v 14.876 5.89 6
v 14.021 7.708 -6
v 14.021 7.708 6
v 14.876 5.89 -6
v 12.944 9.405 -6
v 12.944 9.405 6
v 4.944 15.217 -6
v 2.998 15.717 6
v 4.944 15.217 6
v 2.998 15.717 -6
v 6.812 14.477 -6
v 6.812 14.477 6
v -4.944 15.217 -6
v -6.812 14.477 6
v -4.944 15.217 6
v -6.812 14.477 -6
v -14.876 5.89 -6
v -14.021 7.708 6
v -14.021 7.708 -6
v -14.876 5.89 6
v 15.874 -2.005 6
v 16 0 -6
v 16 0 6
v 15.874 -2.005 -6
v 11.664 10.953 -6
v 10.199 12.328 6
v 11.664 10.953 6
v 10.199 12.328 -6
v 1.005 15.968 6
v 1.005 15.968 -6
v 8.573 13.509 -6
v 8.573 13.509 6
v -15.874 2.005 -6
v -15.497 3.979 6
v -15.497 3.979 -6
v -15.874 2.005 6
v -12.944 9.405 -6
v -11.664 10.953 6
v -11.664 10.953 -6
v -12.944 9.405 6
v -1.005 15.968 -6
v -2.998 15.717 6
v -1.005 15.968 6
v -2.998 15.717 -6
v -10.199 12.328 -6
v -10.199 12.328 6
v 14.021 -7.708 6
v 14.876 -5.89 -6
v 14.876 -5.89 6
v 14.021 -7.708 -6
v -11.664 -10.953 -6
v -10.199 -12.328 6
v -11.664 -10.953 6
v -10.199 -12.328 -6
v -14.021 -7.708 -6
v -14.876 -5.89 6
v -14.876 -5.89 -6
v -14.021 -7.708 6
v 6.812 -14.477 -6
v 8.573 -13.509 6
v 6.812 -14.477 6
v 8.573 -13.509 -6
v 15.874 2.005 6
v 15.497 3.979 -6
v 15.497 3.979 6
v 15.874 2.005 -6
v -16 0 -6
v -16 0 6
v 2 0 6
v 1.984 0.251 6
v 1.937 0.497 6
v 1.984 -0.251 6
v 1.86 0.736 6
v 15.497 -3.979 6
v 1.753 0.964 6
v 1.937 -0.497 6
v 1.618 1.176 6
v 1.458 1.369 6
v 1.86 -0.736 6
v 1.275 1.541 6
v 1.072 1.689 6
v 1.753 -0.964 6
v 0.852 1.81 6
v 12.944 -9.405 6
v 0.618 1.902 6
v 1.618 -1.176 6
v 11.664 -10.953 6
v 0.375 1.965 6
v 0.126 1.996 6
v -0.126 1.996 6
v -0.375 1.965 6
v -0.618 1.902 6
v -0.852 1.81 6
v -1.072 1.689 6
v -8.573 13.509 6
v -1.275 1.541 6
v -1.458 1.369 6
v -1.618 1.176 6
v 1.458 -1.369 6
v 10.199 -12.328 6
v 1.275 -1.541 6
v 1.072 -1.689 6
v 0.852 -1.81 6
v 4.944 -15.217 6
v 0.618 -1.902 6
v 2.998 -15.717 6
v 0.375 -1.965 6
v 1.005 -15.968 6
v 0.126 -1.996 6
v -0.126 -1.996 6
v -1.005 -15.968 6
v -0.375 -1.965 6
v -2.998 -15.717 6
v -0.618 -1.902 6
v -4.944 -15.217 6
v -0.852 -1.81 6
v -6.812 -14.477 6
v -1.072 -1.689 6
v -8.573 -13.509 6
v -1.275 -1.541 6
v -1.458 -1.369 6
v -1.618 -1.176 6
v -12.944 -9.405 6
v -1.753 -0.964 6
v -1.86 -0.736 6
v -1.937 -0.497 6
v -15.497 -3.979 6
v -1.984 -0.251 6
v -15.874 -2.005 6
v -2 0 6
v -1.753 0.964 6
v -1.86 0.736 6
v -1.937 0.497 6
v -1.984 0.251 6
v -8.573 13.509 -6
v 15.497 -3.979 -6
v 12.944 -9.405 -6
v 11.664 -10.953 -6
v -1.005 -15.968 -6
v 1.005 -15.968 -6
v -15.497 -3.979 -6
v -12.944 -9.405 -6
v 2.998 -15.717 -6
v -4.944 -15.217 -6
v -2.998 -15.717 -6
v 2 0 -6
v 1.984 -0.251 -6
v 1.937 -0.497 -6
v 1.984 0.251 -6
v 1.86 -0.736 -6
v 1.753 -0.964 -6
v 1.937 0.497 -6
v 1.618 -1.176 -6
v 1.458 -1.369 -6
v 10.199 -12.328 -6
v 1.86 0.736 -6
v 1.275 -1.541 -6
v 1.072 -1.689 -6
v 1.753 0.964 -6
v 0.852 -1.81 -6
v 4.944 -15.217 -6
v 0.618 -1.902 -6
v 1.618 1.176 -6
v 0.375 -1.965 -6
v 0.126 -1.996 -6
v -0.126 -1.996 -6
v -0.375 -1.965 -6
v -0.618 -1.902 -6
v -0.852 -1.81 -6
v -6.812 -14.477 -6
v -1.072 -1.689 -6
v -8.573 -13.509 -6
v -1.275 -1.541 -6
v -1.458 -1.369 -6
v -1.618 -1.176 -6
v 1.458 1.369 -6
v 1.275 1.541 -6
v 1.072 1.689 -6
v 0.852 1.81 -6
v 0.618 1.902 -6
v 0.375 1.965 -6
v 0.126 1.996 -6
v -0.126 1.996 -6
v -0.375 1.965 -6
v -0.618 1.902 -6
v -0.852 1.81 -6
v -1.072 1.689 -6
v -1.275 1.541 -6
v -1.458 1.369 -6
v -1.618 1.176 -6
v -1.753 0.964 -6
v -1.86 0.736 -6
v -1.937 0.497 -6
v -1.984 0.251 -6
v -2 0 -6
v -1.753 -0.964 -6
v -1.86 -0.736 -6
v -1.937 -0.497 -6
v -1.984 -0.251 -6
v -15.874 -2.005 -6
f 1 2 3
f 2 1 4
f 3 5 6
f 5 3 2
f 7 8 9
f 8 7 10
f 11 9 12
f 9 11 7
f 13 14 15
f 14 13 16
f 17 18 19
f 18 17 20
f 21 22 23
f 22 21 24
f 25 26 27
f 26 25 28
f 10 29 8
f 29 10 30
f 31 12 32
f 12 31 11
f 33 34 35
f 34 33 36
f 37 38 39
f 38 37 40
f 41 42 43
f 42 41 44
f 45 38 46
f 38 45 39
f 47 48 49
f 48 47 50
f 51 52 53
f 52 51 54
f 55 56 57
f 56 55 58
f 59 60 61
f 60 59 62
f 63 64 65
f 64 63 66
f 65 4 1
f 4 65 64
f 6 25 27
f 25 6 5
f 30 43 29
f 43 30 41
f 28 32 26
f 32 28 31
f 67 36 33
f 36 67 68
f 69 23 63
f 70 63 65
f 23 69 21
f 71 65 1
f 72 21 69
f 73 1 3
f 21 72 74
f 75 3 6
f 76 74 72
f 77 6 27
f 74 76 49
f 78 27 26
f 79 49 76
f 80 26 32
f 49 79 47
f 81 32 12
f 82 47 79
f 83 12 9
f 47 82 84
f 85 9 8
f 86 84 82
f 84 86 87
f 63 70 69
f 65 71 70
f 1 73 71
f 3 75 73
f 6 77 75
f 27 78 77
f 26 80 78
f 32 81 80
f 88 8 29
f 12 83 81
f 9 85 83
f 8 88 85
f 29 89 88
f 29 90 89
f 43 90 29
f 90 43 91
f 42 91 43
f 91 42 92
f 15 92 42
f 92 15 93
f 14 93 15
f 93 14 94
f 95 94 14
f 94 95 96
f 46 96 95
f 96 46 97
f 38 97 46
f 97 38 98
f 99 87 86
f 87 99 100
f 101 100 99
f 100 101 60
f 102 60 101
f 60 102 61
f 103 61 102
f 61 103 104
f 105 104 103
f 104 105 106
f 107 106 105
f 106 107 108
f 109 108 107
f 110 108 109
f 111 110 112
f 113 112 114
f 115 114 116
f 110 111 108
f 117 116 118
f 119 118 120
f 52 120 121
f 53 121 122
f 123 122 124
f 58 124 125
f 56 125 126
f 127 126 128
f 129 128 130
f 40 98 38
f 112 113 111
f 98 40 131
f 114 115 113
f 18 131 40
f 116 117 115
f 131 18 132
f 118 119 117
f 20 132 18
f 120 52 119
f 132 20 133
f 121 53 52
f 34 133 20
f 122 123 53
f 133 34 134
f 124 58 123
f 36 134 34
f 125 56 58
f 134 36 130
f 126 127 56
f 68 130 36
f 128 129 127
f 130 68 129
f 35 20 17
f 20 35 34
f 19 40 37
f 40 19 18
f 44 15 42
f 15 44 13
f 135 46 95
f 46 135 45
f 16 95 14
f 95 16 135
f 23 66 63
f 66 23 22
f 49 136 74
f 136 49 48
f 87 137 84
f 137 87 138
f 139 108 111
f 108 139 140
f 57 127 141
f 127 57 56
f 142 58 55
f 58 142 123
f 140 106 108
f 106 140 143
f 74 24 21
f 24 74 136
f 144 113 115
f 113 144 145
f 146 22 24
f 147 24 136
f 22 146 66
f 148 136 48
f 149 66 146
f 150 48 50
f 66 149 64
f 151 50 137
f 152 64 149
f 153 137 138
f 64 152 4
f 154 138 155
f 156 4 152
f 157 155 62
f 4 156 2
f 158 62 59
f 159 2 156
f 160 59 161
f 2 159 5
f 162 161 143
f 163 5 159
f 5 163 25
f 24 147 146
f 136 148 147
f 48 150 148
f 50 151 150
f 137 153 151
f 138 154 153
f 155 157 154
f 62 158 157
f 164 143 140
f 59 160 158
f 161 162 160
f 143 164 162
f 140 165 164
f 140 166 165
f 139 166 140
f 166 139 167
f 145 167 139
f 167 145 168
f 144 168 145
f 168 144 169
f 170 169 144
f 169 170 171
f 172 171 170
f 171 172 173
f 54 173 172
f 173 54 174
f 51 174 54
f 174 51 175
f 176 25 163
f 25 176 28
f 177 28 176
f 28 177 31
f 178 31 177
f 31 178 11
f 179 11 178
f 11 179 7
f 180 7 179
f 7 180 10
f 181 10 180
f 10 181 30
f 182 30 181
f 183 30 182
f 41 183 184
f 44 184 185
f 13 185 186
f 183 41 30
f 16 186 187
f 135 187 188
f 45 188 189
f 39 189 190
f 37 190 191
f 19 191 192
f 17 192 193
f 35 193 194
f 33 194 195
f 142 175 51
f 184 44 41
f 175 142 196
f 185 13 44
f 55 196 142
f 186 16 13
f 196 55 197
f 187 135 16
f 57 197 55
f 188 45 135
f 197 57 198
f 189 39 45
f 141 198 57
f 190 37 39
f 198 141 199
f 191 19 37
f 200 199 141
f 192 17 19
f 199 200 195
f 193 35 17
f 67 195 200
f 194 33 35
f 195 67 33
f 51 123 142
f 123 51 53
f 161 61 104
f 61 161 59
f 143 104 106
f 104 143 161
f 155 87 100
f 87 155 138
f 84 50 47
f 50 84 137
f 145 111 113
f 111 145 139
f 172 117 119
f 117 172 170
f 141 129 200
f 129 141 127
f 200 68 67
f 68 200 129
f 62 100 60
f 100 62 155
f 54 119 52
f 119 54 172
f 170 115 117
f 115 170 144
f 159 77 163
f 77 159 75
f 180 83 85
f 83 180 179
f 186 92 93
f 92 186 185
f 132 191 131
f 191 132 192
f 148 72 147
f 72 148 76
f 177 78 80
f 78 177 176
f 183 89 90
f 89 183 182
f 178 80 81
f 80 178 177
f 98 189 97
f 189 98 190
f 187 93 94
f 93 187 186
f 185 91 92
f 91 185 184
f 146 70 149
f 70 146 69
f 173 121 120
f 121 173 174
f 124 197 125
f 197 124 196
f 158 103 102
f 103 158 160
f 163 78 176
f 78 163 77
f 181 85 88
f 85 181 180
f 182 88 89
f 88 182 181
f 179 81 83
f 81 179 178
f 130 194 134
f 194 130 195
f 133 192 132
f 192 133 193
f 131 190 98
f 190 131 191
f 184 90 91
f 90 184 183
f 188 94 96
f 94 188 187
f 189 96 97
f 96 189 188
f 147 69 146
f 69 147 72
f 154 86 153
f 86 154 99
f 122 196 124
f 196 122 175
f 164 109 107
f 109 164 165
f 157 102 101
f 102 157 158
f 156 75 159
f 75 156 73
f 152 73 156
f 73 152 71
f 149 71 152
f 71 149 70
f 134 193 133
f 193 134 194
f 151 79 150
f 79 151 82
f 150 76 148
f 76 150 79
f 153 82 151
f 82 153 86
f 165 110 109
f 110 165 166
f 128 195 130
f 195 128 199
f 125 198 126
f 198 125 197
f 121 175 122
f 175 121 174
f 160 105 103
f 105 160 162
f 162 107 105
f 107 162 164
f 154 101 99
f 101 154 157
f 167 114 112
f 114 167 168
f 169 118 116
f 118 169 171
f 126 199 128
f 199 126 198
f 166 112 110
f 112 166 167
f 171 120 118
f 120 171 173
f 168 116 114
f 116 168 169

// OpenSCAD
$fn = 50;


difference() {
	union() {
		translate(v = [0, 0, -6.0000000000]) {
			cylinder(h = 12, r = 16.0000000000);
		}
	}
	union() {
		translate(v = [0, 0, -100.0000000000]) {
			cylinder(h = 200, r = 2);
		}
	}
}
